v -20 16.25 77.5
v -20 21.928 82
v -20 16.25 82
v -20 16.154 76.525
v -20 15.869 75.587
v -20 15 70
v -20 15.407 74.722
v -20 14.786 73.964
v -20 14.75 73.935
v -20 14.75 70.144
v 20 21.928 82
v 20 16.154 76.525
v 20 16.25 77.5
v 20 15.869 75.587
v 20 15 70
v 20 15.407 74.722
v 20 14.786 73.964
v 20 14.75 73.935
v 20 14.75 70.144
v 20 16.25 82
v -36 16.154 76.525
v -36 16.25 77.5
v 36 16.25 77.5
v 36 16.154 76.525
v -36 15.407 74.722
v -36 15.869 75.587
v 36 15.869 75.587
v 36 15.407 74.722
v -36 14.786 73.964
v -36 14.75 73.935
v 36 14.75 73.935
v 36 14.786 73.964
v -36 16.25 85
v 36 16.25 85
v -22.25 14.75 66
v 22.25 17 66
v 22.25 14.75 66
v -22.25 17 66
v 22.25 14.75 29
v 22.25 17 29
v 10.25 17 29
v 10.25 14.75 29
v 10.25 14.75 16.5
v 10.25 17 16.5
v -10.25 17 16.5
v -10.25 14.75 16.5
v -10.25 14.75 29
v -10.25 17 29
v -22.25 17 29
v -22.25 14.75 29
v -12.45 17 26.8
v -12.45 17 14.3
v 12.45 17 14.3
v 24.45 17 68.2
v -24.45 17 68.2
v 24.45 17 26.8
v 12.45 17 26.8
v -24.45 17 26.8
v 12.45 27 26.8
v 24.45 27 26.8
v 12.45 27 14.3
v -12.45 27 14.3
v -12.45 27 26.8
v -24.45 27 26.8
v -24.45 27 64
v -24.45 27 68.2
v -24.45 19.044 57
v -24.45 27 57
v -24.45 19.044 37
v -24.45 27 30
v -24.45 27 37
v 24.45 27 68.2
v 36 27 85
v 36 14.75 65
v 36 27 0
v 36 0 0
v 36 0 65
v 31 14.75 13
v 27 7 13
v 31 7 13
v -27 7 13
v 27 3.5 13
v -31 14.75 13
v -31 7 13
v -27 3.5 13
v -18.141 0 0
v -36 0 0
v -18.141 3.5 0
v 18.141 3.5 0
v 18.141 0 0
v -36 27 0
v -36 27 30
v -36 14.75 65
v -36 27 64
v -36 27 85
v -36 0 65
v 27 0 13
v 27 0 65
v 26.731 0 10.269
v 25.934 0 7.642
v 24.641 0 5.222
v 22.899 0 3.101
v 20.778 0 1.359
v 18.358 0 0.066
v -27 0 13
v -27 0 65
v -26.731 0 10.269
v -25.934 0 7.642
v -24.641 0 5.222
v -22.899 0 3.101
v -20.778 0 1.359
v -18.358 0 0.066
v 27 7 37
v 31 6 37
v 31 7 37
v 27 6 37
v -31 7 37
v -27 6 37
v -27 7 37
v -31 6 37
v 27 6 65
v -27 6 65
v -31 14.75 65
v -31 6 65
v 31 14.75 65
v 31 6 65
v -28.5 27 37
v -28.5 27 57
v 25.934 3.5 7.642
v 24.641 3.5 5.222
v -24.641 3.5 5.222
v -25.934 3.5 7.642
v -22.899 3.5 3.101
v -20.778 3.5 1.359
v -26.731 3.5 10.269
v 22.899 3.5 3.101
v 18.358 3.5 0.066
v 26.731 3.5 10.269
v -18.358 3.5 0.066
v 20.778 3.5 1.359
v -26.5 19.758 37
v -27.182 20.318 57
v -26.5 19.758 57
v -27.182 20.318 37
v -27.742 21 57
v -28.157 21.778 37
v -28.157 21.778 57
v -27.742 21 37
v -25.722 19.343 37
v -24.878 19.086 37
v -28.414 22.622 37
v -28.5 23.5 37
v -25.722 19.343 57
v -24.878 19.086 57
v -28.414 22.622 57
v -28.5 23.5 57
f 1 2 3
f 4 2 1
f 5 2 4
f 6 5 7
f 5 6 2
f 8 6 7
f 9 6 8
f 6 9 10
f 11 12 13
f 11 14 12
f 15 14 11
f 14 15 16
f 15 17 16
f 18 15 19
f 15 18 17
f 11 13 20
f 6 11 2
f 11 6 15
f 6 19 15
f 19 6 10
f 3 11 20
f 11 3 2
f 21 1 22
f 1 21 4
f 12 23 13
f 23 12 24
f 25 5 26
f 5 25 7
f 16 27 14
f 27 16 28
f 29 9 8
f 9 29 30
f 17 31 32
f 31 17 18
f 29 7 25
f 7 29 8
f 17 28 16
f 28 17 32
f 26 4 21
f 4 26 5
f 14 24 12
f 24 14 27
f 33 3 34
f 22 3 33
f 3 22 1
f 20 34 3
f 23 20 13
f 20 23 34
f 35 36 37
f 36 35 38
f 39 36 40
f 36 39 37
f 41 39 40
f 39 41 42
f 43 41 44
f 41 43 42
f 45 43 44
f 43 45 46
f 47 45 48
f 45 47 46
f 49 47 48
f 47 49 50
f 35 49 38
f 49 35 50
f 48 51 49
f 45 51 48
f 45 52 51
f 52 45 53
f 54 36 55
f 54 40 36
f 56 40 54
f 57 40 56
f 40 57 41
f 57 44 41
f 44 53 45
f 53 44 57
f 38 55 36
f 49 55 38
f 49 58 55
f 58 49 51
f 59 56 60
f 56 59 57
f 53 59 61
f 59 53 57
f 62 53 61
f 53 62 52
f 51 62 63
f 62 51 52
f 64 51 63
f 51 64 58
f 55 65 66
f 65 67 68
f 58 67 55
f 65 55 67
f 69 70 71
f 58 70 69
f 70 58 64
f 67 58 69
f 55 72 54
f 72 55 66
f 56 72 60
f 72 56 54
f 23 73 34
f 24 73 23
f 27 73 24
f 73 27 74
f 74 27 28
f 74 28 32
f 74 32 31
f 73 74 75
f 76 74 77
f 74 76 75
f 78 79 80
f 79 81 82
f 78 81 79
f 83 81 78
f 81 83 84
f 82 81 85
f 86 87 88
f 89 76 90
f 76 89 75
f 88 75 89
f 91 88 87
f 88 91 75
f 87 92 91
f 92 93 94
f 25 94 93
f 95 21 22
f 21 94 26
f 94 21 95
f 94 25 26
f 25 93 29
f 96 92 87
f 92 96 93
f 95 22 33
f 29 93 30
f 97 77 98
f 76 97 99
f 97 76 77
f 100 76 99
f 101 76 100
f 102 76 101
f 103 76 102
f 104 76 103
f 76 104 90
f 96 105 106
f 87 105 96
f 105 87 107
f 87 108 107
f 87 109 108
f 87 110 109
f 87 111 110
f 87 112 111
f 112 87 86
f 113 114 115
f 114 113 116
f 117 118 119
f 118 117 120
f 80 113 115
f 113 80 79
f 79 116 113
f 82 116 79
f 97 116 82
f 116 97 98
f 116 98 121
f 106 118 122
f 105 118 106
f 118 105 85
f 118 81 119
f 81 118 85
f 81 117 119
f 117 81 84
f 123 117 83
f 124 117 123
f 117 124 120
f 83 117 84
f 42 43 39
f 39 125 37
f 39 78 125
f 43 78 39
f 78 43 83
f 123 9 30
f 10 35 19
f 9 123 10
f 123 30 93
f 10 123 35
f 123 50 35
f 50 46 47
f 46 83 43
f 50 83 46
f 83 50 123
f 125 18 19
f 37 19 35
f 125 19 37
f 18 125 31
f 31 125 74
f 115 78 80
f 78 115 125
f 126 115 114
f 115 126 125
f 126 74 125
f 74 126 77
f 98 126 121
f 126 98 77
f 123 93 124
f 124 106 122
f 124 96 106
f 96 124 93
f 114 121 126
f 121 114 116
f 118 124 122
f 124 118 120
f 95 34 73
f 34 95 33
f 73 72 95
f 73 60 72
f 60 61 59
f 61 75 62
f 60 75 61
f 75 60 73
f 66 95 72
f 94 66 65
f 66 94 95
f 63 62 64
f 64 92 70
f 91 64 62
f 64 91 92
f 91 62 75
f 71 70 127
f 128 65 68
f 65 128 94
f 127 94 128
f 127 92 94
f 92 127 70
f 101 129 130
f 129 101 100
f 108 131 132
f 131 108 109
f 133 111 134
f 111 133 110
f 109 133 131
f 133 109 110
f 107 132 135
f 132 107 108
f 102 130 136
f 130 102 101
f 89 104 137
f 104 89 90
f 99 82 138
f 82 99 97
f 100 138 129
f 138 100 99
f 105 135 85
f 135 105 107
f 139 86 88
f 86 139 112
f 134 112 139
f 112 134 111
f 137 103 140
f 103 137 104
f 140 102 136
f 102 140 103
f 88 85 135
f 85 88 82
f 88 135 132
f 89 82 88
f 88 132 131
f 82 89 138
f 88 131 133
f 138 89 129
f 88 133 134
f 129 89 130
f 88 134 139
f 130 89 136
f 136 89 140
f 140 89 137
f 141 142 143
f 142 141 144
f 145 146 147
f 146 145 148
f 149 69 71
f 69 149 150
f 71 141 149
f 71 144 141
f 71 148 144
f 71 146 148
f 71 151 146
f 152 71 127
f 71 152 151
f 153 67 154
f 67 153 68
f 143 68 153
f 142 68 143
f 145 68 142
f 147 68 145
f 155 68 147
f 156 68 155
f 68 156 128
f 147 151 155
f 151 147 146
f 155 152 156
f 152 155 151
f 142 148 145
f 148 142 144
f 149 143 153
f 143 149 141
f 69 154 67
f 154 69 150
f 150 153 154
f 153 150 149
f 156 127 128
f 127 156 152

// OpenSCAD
/** TODO
 * 
 * [x] bottom cutout
 * [x] place clip hole higher
 * [x] lessen sideways play makita slide
 * [x] place conn higher
 * [x] lower conn
 * [x] enlarge conn holder lips
 * [x] slim down outer size
 *
 */


WIDTH = 72; // [70:1:100]

$fn = 32;

union()
difference(){
	makitaSlide();
	// conn holder hole
	translate([0, 0, 66]){
		// through hole
		rotate([-90, 0, 0])
		linear_extrude(100)
			makitaConnProfile("in");
		// space for lips
		translate([0, 17, 0])
		rotate([-90, 0, 0])
		linear_extrude(100)
			makitaConnProfile("out");
	}
	// retention clib hole
	intersection(){
		// angeled block
		translate([-20, 15, 70])
		rotate([60, 0, 0])
			cube([40, 30, 30]);
		// flat piece
		translate([-25, 0, 65])
			cube([50, 100, 17]);
	}
	
	translate([-0.5*WIDTH, 19, 30])
		pdBoard();
}

module pdBoard(){
	translate([0, 8, 0])
		cube([48, 5, 34]);
	translate([12, 4.5, 7]){
		cylinder(d=9, h=20);
		translate([-4.5, 0, 0])
			cube([9, 4.5, 20]);
	}
	//%cube([48, 13, 34]);
}

module makitaSlide(){
	difference(){
		union(){
			// bottom block
			translate([-0.5*WIDTH, 0])
				cube([WIDTH, 25, 13]);
			// makita slide big stage
			linear_extrude(37)
				makitaSlideProfile("b");
			// makita slide small stage
			linear_extrude(65)
				makitaSlideProfile("a");
			// main body
			translate([-0.5*WIDTH, 14.75, 0])
				cube([WIDTH, 12.25, 85]);
		}
		// bottom cutout
		translate([0, 0, 13])
		rotate([-90, 0, 0])
		hull() {
			translate([13, 0, 0])
				cylinder(r=14, h=7, center=true);
			translate([-13, 0, 0])
				cylinder(r=14, h=7, center=true);
		}
		// top cutout
		translate([0, 14.75-3.5, 77.5]){
			rotate([0, 90, 0])
				cylinder(r=5, h=WIDTH*2, center=true);
			translate([0, 0, 50])
				cube([WIDTH*2, 10, 100], center=true);
		}
	}
}


module makitaSlideProfile(part){
	module half()
		union(){
			// hook point
			translate([27, 0])
				square([6, (part=="a")?6:7]);
			// hook lag
			translate([31, 0])
				square([0.5*WIDTH-31, 16]);
			// hook body
			translate([-1, 14.75])
				square([0.5*WIDTH+1, 10]);
		}
	union(){
		half();
		mirror([1, 0, 0])
			half();
	}
}

module makitaConnProfile(part){
	lip = (part == "in") ? 0 : 2.2;
	union(){
		// big piece
		translate([0, 18.5])
			square([44.5 + 2*lip, 37 + 2*lip], center=true);
		// small protudeing piece
		translate([0, 37 + 6.25])
			square([20.5 + 2*lip, 12.5 + 2*lip], center=true);
	}
}
